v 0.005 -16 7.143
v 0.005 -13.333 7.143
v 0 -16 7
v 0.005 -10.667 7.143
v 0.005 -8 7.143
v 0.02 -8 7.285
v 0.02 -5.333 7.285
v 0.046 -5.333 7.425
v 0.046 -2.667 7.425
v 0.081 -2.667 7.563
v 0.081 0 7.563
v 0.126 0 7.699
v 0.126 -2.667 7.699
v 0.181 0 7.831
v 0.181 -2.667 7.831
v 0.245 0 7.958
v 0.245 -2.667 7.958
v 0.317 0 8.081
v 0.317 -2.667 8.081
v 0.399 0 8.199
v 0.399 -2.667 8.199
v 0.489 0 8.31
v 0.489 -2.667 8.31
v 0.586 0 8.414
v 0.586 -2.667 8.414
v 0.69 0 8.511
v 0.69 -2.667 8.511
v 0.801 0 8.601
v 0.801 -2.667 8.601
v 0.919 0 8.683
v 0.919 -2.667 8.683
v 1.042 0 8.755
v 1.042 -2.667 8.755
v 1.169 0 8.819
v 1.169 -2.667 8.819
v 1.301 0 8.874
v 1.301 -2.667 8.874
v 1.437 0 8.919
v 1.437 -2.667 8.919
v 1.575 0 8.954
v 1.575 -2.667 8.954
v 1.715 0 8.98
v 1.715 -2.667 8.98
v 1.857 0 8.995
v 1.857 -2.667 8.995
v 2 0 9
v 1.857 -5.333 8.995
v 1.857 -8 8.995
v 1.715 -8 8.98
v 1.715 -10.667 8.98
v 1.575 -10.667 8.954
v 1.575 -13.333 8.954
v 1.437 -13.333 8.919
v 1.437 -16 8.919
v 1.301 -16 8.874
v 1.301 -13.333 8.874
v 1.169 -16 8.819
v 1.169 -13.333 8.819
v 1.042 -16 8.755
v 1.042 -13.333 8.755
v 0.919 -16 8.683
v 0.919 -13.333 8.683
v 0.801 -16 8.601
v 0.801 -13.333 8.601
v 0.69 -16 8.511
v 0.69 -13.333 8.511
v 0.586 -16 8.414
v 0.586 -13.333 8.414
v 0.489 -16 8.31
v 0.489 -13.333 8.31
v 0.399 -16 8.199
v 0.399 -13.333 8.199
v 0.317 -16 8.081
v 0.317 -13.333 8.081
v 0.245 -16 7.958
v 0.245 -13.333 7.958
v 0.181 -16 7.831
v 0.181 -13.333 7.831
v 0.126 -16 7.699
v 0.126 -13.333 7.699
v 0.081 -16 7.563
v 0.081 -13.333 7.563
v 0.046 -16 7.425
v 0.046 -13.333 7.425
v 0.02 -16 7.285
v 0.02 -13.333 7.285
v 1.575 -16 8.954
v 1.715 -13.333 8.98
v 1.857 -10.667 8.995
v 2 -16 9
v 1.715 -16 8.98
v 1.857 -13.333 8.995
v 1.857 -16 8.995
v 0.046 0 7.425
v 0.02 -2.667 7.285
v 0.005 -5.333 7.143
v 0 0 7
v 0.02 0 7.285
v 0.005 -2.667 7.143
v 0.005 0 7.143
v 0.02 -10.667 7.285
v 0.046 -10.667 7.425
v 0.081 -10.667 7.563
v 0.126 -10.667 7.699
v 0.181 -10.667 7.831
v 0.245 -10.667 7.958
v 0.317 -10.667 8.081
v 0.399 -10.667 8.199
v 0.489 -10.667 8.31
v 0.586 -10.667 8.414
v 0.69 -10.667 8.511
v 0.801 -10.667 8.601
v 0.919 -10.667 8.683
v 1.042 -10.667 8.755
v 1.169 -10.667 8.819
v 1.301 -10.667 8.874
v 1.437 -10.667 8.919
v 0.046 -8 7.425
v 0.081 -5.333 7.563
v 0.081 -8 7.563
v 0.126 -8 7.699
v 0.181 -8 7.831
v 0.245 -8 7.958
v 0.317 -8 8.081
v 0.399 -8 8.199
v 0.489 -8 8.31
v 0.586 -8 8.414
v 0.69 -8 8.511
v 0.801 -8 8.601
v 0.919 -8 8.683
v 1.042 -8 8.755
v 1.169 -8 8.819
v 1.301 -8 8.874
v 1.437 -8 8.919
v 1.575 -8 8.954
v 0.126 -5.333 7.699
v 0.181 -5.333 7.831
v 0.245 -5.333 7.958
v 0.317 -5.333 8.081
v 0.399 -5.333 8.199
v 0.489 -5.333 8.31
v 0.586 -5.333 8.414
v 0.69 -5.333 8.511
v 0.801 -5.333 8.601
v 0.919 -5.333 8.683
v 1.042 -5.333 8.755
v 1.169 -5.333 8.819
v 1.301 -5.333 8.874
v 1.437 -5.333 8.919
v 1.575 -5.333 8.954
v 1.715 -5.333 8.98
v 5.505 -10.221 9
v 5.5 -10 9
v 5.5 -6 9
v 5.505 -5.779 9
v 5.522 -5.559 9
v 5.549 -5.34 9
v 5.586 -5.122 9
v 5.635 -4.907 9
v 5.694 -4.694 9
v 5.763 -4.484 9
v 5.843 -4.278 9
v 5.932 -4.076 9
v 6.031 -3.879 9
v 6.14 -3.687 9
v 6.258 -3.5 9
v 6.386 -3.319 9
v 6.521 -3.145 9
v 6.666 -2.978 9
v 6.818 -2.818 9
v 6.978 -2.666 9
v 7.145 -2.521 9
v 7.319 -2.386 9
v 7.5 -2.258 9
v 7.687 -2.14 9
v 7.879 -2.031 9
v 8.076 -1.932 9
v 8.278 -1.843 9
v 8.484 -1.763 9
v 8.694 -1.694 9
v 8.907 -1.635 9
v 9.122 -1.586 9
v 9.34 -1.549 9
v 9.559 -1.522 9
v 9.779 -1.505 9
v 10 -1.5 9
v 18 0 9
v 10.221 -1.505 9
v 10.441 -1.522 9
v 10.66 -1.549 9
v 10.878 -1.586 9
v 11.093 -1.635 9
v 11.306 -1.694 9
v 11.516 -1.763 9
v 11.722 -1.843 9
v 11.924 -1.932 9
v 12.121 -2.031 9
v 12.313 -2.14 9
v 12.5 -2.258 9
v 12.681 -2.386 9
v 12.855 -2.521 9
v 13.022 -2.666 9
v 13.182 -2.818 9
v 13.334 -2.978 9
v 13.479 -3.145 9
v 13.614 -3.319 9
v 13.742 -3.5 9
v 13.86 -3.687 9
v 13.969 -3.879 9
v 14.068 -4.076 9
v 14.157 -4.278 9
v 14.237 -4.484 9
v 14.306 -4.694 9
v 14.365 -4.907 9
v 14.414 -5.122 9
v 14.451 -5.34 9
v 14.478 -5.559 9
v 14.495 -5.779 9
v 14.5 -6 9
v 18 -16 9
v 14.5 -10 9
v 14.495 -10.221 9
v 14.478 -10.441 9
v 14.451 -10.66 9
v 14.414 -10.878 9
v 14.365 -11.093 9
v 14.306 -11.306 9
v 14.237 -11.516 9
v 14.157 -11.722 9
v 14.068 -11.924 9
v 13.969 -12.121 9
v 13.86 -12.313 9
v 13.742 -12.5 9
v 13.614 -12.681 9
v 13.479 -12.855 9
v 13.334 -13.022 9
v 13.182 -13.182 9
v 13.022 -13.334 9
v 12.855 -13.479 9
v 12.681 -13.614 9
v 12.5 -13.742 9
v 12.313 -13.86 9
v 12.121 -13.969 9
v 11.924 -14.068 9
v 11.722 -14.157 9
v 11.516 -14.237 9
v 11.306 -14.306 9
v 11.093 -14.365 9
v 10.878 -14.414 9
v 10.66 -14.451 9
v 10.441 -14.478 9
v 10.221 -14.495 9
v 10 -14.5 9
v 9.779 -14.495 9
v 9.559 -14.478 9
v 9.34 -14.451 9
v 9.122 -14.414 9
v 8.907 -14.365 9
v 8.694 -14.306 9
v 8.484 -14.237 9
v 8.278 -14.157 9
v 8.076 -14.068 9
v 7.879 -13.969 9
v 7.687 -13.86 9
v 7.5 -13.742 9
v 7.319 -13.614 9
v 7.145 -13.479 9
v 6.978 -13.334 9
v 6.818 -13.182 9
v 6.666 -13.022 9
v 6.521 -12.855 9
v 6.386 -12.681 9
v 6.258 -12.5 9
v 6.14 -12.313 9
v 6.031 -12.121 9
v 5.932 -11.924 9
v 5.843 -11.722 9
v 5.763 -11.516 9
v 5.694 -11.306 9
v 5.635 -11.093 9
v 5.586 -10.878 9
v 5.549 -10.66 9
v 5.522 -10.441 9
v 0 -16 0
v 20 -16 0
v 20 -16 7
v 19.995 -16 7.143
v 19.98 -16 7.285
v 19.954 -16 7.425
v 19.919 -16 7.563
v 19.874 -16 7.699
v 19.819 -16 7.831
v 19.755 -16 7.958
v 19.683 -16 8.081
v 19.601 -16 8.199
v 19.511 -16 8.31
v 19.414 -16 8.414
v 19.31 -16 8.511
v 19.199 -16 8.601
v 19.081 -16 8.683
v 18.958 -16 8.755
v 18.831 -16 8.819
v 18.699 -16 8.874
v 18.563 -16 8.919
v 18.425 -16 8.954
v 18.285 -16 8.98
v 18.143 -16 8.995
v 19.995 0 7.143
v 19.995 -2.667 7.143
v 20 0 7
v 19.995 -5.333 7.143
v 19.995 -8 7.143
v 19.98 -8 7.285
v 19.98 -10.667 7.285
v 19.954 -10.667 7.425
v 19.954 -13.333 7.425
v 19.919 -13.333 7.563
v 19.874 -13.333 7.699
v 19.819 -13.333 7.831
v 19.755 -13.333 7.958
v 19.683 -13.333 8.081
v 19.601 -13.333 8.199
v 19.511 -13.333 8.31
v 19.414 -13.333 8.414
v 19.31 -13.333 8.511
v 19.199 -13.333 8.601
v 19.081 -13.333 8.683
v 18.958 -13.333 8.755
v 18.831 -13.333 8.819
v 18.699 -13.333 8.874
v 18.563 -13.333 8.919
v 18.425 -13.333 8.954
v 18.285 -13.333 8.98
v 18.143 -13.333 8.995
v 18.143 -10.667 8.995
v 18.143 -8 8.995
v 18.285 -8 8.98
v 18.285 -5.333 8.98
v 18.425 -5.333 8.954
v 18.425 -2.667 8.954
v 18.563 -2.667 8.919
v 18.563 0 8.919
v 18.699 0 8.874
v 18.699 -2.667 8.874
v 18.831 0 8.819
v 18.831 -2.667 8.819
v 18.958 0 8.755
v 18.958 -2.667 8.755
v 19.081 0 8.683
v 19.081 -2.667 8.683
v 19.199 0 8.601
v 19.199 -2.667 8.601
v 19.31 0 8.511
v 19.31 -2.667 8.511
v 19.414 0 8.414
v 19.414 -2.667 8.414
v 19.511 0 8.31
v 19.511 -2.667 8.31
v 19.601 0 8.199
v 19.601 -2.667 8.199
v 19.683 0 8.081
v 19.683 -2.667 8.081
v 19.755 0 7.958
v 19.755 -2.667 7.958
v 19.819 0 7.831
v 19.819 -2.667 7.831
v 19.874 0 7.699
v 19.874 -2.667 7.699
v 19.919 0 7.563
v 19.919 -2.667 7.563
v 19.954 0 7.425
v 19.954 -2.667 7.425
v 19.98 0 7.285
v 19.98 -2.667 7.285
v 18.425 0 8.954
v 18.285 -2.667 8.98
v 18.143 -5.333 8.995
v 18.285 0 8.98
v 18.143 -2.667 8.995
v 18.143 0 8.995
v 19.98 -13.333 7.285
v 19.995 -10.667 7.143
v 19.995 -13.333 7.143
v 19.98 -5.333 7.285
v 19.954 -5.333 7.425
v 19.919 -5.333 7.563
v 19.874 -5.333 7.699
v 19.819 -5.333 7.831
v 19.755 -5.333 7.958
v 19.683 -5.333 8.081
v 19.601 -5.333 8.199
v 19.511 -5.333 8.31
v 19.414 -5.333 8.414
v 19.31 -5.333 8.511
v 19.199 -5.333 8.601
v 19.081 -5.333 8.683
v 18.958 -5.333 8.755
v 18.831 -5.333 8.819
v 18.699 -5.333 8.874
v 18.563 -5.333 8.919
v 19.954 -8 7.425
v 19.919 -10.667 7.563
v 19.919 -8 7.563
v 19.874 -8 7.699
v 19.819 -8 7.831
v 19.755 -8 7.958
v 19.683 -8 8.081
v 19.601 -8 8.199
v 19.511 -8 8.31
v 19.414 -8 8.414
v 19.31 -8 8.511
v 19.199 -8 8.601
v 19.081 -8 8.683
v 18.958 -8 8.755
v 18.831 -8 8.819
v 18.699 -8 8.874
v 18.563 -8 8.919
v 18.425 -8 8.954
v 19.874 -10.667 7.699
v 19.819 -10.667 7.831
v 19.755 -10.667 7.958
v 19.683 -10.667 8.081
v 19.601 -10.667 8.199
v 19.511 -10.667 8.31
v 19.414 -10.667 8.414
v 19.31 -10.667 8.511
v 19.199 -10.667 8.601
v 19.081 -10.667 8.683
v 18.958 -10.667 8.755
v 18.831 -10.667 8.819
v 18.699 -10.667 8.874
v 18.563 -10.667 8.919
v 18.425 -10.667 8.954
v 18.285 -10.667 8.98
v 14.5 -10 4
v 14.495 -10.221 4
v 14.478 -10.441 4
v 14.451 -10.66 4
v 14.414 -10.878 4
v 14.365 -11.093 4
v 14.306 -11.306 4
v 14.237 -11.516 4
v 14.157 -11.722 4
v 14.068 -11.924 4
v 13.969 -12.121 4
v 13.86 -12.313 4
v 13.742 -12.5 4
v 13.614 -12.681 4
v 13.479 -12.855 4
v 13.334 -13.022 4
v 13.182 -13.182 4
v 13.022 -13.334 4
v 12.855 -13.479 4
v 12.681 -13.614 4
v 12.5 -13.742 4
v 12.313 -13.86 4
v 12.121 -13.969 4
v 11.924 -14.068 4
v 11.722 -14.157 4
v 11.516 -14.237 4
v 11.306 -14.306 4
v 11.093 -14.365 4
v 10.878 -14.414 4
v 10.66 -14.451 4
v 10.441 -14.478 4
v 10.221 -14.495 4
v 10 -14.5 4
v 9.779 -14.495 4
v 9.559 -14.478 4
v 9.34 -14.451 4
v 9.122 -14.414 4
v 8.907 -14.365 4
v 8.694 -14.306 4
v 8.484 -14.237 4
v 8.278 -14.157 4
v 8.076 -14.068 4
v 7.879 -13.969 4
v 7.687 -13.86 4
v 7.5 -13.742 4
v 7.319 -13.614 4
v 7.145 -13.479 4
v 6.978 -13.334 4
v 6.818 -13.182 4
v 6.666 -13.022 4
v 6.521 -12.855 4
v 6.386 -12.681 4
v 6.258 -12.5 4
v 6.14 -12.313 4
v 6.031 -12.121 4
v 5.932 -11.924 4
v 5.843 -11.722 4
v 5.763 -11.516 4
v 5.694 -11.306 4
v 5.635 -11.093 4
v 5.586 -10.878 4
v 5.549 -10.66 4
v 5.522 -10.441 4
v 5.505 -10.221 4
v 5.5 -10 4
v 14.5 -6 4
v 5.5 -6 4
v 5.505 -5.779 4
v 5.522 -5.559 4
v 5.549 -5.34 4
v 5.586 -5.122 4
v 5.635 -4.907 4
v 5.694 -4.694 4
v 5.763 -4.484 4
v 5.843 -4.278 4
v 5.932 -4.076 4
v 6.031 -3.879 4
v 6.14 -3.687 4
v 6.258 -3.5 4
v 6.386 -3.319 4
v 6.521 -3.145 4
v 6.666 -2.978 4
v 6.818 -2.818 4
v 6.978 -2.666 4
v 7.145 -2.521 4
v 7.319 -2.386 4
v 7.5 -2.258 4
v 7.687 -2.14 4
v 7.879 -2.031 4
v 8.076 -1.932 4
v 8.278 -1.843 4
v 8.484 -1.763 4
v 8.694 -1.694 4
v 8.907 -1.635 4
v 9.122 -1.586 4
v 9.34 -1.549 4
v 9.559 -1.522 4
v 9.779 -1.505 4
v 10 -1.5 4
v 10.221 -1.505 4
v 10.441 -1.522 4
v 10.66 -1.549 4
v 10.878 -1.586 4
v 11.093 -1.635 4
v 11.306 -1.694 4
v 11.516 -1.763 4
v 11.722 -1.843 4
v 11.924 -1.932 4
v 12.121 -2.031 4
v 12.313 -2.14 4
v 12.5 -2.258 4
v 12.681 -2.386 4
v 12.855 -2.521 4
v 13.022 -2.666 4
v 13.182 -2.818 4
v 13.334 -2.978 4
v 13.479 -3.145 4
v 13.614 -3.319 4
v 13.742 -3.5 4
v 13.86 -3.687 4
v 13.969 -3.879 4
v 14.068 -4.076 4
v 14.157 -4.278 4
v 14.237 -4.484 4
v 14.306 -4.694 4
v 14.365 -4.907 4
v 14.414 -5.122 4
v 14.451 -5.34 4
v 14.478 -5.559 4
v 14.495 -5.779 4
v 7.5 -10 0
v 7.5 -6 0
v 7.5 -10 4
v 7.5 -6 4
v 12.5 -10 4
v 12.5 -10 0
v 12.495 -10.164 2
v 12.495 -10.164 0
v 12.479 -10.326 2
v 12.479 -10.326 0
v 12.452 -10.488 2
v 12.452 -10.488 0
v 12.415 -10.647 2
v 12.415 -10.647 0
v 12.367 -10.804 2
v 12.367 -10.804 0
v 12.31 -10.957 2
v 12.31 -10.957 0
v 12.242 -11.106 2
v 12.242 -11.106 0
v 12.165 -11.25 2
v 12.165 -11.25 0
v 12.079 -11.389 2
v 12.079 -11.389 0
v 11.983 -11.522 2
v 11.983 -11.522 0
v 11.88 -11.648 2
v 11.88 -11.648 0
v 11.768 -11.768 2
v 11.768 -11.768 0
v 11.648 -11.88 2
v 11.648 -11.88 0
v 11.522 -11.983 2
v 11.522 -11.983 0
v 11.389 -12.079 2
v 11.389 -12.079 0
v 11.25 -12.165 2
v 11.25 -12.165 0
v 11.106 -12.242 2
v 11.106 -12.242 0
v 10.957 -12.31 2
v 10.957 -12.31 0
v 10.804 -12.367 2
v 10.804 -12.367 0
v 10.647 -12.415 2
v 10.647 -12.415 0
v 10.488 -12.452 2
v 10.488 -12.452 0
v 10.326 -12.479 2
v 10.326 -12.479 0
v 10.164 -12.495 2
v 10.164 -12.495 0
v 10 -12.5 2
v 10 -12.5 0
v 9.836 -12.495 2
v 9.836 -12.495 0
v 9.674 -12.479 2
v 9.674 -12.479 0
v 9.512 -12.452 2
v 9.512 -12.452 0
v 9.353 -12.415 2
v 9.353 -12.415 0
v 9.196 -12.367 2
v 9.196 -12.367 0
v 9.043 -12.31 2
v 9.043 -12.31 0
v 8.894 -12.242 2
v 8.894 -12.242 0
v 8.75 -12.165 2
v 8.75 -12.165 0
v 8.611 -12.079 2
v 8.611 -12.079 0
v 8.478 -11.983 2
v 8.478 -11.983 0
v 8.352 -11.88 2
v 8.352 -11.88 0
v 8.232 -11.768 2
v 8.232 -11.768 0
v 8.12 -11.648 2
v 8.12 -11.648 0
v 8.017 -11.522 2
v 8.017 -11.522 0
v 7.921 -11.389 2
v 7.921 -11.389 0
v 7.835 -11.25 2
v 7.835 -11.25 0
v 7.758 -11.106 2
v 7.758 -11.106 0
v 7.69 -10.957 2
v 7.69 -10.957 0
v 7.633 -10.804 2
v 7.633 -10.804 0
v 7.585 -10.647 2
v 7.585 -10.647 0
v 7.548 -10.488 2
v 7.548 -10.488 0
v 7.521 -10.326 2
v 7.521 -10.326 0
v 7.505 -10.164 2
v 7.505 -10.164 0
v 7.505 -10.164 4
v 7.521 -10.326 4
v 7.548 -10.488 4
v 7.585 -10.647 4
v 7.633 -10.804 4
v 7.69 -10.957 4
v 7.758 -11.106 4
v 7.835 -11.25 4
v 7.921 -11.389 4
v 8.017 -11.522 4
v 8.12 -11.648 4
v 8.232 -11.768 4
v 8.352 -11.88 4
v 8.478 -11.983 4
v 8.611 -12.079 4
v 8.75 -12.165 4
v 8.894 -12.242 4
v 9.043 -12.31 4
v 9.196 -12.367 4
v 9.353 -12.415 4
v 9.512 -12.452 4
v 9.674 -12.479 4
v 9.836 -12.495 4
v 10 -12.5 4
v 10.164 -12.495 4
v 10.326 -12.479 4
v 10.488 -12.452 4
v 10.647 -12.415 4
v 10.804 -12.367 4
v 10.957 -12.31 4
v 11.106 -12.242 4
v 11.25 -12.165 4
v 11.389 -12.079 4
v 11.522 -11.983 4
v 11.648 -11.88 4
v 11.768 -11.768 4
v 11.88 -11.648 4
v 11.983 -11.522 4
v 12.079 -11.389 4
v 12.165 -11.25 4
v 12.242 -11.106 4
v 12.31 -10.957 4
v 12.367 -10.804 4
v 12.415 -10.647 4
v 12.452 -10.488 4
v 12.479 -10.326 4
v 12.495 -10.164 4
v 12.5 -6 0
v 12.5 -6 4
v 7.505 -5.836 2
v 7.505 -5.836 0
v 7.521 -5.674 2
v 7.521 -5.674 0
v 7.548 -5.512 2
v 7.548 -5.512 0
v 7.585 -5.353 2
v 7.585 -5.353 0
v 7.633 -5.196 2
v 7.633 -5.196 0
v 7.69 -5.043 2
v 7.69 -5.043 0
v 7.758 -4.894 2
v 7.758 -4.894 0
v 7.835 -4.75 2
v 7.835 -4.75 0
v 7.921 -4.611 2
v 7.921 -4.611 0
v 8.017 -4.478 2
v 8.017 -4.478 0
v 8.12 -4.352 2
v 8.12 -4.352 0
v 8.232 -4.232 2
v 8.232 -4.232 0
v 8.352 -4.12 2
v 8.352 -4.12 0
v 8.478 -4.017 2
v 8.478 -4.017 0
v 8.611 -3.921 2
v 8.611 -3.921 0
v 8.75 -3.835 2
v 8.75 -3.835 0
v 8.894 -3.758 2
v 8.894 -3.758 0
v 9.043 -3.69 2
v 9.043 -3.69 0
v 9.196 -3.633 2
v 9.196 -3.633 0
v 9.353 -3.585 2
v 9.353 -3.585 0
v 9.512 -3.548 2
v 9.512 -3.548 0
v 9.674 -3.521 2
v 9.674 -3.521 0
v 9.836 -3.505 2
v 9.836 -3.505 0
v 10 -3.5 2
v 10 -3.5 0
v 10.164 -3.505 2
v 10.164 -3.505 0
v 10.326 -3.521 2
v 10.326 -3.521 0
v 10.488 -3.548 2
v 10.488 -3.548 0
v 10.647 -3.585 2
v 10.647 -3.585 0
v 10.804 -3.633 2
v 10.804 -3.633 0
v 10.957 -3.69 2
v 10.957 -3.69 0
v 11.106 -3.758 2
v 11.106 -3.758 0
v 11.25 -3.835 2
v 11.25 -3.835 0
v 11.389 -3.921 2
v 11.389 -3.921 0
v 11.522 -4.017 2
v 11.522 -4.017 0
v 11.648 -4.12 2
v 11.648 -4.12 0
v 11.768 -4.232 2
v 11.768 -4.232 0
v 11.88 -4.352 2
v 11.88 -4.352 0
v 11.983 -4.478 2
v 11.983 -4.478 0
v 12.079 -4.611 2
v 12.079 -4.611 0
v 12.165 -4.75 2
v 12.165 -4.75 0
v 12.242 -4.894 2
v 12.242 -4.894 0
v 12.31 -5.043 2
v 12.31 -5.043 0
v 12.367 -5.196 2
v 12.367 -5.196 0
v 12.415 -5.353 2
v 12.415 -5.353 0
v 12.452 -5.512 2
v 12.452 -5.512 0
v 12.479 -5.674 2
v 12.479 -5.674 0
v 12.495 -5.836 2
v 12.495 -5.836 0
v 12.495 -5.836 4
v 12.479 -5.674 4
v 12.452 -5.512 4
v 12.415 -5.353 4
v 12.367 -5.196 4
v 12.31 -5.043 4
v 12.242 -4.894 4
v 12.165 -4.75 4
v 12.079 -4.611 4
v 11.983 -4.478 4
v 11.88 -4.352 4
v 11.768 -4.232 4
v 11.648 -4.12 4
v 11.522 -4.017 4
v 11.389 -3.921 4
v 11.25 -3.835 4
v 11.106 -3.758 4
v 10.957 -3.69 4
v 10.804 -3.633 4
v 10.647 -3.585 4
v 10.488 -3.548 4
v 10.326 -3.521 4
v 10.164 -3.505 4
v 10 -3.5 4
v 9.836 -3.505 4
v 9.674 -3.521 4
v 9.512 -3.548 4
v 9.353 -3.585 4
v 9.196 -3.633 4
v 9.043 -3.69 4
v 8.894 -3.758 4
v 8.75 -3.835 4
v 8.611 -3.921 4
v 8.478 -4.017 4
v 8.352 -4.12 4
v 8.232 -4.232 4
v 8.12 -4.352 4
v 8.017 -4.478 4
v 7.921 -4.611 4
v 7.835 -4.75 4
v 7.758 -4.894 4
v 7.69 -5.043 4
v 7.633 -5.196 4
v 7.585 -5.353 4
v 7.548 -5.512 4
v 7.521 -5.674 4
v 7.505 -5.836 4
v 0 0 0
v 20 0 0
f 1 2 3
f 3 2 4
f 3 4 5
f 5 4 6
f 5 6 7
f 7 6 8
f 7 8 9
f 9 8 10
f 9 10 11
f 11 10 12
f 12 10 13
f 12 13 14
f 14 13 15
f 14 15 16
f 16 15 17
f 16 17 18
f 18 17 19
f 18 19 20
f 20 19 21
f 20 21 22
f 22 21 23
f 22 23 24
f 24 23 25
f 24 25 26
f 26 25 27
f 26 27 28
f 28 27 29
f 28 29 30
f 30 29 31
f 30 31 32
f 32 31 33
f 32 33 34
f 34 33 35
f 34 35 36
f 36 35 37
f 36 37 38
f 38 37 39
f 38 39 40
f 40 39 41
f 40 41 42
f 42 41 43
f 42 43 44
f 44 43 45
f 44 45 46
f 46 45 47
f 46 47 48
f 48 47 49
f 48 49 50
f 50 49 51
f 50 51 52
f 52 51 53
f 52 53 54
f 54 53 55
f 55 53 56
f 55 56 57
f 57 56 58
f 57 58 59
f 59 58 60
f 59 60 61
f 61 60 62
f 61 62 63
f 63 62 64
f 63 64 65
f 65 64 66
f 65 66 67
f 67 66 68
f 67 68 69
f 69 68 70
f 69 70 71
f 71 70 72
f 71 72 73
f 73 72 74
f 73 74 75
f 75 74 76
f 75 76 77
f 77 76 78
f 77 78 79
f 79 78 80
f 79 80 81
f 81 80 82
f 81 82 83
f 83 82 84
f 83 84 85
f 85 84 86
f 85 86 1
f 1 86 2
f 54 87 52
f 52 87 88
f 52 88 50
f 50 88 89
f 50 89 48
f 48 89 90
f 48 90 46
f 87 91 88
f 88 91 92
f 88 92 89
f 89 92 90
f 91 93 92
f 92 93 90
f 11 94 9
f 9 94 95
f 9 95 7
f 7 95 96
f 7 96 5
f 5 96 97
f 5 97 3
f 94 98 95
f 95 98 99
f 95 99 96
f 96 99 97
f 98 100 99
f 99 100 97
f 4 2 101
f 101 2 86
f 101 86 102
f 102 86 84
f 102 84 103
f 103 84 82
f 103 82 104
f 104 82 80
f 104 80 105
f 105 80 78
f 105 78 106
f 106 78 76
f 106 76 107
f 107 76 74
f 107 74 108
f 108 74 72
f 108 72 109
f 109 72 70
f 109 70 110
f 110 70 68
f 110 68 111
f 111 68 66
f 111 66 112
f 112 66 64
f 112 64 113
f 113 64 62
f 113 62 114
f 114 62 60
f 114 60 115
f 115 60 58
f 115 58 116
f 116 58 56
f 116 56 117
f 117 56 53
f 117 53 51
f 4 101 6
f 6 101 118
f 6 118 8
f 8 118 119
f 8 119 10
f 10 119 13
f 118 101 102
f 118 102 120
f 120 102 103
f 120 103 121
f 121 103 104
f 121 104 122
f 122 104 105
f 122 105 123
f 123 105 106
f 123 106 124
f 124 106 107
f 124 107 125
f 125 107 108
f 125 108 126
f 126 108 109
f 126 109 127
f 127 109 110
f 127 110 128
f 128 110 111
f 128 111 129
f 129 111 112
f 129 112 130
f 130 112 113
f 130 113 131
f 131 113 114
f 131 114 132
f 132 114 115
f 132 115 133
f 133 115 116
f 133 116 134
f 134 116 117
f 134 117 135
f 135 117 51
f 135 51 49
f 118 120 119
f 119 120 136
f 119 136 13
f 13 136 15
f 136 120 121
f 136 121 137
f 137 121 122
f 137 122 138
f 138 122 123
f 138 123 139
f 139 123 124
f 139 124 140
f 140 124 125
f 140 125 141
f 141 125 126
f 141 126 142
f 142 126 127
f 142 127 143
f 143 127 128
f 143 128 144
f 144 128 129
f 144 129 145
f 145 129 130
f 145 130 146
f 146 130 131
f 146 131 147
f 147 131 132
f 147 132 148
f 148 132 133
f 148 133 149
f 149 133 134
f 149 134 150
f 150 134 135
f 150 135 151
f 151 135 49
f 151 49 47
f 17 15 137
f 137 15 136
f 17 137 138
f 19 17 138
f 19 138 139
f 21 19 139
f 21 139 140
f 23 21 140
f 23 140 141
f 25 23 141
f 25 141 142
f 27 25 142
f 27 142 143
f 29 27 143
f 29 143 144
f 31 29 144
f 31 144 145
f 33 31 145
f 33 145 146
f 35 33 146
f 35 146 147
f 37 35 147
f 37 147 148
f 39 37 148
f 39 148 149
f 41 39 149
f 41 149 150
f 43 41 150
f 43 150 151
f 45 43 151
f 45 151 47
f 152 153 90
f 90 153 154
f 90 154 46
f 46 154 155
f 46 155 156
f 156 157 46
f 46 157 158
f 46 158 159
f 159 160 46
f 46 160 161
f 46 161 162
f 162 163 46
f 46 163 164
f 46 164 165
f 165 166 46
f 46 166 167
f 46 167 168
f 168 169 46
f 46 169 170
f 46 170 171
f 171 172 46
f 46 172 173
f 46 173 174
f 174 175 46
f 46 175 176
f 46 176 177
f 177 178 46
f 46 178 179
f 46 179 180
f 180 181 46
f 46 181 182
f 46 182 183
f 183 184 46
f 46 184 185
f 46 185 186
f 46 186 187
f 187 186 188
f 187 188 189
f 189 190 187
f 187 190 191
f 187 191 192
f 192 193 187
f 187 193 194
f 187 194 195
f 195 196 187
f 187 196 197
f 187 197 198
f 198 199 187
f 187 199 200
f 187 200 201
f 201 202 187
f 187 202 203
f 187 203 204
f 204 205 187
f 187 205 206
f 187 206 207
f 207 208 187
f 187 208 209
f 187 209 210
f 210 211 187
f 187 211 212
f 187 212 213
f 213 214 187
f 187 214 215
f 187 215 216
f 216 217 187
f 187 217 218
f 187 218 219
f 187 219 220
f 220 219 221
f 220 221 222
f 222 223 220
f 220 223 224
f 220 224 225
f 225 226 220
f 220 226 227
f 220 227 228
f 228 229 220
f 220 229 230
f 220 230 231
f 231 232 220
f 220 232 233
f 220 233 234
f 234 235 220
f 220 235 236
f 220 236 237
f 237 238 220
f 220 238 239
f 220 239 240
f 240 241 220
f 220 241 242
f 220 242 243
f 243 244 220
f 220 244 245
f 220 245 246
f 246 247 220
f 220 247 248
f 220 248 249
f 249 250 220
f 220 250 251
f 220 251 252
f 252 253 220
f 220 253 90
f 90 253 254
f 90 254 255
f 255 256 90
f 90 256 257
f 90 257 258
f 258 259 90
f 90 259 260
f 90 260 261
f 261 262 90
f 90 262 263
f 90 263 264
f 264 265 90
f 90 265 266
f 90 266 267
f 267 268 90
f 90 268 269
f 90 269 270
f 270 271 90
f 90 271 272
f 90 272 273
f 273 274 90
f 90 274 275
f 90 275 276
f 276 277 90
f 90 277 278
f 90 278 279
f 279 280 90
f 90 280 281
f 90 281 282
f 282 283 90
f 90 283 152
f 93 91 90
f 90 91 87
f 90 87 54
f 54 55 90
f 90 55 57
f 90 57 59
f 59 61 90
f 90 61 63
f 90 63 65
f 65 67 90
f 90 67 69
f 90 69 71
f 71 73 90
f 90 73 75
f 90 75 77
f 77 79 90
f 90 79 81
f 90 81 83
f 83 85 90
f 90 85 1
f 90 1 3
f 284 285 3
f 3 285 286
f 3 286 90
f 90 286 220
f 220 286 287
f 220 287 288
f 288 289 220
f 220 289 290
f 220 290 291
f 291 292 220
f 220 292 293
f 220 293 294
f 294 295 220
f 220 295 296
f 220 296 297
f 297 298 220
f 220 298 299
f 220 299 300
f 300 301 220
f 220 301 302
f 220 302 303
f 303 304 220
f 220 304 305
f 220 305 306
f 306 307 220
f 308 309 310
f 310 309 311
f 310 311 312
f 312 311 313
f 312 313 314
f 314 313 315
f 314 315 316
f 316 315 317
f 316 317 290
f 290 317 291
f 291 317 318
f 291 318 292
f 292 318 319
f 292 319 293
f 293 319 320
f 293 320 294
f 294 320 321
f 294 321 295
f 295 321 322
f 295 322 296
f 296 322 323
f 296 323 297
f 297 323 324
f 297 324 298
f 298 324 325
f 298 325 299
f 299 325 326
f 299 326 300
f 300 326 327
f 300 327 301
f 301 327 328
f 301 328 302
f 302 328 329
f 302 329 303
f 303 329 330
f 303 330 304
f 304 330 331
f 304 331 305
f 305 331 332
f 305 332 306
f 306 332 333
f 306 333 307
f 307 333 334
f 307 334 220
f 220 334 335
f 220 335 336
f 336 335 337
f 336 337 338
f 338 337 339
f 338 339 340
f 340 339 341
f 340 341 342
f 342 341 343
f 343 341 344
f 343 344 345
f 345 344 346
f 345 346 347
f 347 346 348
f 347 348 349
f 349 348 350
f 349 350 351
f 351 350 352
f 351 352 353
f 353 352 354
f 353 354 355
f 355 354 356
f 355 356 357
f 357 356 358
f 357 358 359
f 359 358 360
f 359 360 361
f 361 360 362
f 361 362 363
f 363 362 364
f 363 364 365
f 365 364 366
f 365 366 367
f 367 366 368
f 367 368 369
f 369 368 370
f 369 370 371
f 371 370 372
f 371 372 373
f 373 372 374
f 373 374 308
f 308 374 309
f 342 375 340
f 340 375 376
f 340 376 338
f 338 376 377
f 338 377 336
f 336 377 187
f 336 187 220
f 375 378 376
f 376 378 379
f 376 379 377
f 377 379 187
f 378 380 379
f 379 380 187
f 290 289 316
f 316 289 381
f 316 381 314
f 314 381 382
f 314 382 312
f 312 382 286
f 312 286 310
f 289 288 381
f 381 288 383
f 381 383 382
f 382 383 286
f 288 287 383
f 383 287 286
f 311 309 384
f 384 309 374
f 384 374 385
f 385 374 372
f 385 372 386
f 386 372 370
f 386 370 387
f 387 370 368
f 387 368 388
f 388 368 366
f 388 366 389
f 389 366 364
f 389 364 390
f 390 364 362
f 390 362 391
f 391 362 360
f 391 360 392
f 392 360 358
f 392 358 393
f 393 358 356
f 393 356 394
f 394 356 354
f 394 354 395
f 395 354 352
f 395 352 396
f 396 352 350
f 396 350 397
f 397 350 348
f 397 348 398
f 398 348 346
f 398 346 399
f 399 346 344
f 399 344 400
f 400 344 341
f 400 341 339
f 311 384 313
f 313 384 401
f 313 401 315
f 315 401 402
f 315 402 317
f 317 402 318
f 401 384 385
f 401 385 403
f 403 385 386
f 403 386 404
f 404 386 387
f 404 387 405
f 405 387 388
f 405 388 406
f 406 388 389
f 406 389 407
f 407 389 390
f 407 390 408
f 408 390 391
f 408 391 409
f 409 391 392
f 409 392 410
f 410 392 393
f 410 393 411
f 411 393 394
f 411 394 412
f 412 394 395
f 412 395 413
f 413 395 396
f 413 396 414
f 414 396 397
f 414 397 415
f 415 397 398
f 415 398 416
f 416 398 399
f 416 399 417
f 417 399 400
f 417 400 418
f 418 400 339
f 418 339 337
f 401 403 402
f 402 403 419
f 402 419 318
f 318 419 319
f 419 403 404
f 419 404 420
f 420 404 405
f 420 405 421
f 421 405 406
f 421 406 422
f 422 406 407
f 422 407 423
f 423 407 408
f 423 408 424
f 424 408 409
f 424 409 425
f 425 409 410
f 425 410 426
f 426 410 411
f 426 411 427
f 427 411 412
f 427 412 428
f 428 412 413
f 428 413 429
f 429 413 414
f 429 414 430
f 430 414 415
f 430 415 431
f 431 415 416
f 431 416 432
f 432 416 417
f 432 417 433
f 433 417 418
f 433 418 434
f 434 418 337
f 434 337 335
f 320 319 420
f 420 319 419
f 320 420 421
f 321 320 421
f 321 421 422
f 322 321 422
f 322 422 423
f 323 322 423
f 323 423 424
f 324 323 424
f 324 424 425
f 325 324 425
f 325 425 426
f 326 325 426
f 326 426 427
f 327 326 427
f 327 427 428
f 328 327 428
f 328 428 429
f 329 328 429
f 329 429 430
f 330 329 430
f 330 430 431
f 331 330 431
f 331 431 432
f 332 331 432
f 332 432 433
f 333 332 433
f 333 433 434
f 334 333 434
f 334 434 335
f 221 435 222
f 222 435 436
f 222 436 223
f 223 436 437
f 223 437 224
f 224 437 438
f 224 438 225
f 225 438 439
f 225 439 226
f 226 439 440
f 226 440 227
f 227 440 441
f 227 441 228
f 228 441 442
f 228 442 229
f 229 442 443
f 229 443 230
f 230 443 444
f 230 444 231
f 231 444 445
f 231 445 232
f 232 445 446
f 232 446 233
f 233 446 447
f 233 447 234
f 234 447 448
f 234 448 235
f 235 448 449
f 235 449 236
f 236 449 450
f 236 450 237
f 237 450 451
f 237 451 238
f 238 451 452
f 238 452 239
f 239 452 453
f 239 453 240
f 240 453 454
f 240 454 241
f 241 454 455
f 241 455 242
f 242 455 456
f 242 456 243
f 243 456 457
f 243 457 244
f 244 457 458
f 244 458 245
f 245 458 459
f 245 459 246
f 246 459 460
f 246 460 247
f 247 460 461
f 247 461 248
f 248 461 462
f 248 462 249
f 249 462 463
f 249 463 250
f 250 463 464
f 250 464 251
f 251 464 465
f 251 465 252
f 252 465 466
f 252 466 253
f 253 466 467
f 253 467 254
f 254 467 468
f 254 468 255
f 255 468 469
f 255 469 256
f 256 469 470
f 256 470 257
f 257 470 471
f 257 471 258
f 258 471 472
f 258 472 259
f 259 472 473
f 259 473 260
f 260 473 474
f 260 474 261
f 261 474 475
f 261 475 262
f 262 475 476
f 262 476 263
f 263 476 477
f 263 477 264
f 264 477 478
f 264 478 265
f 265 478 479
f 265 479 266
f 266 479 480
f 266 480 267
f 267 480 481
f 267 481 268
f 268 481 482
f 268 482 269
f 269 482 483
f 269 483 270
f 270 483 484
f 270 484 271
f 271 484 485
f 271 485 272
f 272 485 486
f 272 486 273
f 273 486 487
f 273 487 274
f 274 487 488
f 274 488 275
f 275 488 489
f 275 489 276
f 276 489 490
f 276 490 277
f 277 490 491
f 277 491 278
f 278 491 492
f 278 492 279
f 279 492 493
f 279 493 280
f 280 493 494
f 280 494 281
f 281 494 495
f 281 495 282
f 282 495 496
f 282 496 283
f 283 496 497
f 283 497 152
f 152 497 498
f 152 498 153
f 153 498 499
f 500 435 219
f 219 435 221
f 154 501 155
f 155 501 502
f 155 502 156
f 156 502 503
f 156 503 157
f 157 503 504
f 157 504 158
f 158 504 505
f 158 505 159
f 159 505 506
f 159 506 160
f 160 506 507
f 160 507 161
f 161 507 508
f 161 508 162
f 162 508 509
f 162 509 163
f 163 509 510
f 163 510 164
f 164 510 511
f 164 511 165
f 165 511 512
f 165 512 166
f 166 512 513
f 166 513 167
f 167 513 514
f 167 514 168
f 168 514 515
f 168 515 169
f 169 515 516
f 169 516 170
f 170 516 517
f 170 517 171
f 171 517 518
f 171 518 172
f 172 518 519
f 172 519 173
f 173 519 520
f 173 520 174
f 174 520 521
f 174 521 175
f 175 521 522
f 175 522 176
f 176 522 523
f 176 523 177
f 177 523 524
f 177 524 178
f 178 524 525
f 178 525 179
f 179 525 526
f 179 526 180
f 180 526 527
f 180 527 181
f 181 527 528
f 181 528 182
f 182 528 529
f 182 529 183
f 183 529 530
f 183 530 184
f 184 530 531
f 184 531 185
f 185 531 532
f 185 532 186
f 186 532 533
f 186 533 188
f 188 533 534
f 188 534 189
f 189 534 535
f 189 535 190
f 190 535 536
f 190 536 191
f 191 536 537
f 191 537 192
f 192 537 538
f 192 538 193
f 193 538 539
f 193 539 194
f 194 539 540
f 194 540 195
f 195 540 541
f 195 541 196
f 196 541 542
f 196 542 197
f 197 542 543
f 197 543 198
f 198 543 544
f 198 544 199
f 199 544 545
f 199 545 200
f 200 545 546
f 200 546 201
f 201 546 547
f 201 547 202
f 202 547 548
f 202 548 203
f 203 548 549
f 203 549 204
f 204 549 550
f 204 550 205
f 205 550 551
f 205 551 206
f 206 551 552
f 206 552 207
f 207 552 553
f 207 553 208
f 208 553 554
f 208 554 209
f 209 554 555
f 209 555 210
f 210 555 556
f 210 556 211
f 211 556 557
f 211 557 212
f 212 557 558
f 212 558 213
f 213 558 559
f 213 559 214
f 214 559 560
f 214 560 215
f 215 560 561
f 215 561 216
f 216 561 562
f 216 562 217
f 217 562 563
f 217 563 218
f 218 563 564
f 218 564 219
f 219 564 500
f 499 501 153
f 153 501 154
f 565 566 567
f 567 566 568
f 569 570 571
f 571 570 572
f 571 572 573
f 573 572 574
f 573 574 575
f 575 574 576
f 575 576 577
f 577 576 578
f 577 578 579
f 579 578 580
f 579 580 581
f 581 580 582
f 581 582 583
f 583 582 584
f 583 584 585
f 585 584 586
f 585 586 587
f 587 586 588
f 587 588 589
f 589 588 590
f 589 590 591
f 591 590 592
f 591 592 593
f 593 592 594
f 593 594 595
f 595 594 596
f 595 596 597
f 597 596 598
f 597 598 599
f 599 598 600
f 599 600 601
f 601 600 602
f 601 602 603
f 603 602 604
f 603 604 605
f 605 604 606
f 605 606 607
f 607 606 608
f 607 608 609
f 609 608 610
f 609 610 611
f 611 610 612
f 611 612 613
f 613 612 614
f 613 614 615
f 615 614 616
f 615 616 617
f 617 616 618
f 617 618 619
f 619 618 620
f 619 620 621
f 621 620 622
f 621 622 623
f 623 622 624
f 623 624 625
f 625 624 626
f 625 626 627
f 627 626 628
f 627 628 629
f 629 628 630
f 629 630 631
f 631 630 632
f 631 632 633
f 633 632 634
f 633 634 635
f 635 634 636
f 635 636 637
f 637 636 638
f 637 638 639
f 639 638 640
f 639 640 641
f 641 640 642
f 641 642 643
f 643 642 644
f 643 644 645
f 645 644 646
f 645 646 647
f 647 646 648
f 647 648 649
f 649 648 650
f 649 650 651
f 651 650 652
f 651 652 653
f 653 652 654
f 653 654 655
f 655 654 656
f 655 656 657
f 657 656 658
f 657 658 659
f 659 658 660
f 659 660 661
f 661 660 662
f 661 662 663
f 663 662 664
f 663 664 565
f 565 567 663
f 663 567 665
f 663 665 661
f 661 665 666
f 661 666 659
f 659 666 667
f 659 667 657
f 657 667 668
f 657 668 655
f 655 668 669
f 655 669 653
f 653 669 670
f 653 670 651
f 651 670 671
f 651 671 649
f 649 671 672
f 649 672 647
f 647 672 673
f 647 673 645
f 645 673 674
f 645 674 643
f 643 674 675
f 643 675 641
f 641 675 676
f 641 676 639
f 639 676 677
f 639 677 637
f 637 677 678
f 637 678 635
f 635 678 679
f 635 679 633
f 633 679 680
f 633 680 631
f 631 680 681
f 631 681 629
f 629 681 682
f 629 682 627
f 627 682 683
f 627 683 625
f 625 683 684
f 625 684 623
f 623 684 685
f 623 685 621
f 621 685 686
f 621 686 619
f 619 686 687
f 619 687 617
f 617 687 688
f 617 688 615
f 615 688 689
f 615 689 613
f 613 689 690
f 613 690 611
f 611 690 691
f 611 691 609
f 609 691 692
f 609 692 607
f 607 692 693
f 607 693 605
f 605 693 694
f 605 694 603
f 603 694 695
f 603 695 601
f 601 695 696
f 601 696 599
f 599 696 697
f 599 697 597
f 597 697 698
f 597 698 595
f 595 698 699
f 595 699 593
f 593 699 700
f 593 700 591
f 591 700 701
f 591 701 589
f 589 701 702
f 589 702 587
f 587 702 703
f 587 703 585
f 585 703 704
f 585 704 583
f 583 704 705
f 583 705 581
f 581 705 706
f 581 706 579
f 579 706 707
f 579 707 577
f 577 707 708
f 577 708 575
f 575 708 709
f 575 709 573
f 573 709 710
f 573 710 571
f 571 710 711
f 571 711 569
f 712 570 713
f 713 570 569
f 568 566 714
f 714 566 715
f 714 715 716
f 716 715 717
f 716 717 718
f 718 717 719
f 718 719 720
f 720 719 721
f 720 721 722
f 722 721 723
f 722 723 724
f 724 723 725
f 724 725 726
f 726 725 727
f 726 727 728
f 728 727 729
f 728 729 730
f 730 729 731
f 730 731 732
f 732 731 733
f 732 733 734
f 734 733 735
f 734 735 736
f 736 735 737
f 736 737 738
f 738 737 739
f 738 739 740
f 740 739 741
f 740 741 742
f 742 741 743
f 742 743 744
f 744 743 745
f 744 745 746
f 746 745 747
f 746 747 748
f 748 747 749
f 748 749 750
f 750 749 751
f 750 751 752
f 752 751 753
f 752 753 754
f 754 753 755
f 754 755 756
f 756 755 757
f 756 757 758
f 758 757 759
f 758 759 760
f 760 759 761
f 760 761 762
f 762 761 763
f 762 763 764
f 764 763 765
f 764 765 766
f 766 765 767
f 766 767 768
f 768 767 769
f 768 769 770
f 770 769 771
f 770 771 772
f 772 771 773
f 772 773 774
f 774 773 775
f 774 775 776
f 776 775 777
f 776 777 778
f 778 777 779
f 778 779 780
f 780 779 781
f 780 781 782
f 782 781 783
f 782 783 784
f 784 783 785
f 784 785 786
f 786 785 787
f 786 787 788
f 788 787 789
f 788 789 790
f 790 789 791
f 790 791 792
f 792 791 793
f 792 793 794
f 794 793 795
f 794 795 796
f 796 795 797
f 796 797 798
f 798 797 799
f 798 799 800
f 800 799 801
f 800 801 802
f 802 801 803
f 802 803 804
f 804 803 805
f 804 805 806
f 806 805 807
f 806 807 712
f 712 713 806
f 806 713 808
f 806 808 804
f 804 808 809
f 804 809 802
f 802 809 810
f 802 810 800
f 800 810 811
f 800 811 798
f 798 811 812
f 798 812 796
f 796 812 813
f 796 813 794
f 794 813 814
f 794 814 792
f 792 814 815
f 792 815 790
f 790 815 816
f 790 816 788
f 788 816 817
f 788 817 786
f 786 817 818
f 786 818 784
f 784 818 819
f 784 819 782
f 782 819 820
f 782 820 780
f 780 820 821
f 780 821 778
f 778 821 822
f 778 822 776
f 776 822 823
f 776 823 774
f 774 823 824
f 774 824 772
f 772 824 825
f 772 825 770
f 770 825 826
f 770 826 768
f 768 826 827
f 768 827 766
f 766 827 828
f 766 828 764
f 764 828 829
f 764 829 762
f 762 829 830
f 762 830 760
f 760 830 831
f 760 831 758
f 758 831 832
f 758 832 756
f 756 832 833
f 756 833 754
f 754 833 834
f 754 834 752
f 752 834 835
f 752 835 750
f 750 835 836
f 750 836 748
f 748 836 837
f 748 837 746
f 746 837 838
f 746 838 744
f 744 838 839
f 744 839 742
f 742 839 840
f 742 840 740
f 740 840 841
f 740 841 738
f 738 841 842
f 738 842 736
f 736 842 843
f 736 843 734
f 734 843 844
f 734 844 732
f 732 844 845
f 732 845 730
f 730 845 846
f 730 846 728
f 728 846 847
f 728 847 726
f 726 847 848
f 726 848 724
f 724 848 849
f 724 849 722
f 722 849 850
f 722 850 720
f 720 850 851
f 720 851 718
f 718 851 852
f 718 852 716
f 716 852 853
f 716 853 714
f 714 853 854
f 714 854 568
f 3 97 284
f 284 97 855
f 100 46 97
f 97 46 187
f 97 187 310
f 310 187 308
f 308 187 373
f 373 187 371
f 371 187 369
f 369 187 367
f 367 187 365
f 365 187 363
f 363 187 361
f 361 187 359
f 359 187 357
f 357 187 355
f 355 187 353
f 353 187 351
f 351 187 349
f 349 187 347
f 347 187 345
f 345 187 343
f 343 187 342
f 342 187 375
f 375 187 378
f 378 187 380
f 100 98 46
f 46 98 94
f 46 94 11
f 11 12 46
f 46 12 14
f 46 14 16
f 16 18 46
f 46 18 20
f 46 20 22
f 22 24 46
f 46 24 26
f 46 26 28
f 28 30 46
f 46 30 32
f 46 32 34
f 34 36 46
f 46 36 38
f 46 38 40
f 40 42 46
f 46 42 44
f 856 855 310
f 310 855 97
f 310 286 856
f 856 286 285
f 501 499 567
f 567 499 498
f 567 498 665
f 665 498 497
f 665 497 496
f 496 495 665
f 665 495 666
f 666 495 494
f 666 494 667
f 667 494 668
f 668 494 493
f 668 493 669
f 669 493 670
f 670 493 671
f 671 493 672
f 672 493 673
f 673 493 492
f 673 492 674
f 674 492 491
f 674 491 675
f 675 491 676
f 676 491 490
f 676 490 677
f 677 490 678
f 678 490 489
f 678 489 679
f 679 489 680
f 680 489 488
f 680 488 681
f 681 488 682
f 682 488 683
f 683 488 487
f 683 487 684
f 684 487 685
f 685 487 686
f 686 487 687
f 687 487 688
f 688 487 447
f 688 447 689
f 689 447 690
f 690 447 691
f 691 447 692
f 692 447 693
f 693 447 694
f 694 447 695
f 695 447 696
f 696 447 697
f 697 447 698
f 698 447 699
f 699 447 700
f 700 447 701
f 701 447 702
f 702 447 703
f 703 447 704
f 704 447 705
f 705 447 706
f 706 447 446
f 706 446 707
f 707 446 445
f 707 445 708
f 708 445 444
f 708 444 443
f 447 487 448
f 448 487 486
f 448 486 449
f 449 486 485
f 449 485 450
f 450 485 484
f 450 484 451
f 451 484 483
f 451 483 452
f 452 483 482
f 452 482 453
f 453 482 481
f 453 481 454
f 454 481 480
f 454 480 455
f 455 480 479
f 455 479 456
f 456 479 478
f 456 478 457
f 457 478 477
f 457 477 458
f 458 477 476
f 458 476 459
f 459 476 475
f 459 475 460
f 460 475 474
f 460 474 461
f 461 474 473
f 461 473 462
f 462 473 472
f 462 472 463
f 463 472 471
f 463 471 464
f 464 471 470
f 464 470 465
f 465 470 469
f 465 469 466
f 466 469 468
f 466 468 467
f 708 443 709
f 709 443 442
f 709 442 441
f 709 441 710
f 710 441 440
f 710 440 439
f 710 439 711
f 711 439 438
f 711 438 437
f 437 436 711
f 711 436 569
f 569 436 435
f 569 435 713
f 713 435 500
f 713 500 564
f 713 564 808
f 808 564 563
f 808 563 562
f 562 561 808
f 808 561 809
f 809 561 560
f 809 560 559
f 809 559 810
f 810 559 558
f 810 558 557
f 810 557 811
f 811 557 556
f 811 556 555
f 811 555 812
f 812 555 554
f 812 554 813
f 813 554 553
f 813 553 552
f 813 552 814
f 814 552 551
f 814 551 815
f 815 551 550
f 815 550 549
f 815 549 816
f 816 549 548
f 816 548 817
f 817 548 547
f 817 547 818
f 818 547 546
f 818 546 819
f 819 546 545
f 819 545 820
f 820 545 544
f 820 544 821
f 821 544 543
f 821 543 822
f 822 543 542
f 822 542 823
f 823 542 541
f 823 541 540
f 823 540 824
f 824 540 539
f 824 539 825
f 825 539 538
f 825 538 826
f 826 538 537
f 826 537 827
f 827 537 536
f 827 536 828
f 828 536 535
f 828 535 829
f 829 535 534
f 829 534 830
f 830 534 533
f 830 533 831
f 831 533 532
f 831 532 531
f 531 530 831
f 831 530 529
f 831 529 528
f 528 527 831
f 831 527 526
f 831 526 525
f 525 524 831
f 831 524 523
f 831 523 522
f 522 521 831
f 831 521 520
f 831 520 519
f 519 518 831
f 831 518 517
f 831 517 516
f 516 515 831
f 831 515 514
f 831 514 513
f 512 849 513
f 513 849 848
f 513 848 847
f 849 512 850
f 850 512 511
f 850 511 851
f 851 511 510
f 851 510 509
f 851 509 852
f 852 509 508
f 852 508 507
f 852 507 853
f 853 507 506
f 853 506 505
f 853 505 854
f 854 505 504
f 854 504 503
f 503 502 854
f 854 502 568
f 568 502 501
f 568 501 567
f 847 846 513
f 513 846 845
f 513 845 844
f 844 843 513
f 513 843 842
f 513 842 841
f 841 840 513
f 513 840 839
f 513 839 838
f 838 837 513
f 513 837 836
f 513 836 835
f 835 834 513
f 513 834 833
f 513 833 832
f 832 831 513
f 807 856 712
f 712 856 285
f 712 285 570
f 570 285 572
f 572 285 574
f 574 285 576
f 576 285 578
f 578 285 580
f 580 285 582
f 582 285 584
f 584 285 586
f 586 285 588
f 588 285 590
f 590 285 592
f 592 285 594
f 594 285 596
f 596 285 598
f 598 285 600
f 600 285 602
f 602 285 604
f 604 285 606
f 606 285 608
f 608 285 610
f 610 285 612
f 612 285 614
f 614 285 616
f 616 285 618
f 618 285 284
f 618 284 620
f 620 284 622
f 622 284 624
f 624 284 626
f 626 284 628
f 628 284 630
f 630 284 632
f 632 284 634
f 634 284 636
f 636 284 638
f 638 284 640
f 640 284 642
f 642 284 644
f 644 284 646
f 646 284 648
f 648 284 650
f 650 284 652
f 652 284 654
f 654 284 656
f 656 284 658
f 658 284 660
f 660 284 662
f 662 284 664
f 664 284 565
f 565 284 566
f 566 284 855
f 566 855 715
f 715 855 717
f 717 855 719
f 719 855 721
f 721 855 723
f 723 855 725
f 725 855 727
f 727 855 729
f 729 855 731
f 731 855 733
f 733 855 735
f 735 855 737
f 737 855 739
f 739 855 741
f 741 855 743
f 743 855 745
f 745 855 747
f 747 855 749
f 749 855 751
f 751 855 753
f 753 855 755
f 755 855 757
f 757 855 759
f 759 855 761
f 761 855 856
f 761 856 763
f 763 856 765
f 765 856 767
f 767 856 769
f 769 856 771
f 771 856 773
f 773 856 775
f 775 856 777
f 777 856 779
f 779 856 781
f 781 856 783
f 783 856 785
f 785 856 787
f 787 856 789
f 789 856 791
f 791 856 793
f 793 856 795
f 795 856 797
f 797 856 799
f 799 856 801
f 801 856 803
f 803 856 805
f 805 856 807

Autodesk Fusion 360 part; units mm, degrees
sketch "Sketch1" plane through (0, 0, 0) normal (0, 0, 1) x (1, 0, 0)
  line L0 (0, 0) -> (20, 0)
  line L1 (20, 0) -> (20, -16)
  line L2 (20, -16) -> (0, -16)
  line L3 (0, -16) -> (0, 0)
  line L4 (20, -8) -> (0, -8) construction
  line L5 (10, 0) -> (10, -16) construction
  line L6 (7.5, -6) -> (7.5, -10)
  arc A0 (7.5, -10) -> (12.5, -10) centre (10, -10) ccw
  line L7 (12.5, -10) -> (12.5, -6)
  arc A1 (12.5, -6) -> (7.5, -6) centre (10, -6) ccw
  line L8 (10, -6) -> (10, -10) construction
  line L9 (5.5, -6) -> (5.5, -10)
  arc A2 (5.5, -10) -> (14.5, -10) centre (10, -10) ccw
  line L10 (14.5, -10) -> (14.5, -6)
  arc A3 (14.5, -6) -> (5.5, -6) centre (10, -6) ccw
  line L11 (10, -6) -> (10, -10) construction
  dimension "d1" = 20
  dimension "d2" = 16
  dimension "d11" = 5
  dimension "d12" = 2
  dimension "d13" = 2
  dimension "d14" = 9
extrude "Extrude1" add sketch "Sketch1" along normal blind 4 contours L0 L1 L2 L3 | L9 A2 L10 A3
extrude "Extrude2" add sketch "Sketch1" along normal blind 5 from surface at 4 contours L0 L1 L2 L3
fillet "Fillet1" radius 2 2 edges at (20, -8, 9) (0, -8, 9)
